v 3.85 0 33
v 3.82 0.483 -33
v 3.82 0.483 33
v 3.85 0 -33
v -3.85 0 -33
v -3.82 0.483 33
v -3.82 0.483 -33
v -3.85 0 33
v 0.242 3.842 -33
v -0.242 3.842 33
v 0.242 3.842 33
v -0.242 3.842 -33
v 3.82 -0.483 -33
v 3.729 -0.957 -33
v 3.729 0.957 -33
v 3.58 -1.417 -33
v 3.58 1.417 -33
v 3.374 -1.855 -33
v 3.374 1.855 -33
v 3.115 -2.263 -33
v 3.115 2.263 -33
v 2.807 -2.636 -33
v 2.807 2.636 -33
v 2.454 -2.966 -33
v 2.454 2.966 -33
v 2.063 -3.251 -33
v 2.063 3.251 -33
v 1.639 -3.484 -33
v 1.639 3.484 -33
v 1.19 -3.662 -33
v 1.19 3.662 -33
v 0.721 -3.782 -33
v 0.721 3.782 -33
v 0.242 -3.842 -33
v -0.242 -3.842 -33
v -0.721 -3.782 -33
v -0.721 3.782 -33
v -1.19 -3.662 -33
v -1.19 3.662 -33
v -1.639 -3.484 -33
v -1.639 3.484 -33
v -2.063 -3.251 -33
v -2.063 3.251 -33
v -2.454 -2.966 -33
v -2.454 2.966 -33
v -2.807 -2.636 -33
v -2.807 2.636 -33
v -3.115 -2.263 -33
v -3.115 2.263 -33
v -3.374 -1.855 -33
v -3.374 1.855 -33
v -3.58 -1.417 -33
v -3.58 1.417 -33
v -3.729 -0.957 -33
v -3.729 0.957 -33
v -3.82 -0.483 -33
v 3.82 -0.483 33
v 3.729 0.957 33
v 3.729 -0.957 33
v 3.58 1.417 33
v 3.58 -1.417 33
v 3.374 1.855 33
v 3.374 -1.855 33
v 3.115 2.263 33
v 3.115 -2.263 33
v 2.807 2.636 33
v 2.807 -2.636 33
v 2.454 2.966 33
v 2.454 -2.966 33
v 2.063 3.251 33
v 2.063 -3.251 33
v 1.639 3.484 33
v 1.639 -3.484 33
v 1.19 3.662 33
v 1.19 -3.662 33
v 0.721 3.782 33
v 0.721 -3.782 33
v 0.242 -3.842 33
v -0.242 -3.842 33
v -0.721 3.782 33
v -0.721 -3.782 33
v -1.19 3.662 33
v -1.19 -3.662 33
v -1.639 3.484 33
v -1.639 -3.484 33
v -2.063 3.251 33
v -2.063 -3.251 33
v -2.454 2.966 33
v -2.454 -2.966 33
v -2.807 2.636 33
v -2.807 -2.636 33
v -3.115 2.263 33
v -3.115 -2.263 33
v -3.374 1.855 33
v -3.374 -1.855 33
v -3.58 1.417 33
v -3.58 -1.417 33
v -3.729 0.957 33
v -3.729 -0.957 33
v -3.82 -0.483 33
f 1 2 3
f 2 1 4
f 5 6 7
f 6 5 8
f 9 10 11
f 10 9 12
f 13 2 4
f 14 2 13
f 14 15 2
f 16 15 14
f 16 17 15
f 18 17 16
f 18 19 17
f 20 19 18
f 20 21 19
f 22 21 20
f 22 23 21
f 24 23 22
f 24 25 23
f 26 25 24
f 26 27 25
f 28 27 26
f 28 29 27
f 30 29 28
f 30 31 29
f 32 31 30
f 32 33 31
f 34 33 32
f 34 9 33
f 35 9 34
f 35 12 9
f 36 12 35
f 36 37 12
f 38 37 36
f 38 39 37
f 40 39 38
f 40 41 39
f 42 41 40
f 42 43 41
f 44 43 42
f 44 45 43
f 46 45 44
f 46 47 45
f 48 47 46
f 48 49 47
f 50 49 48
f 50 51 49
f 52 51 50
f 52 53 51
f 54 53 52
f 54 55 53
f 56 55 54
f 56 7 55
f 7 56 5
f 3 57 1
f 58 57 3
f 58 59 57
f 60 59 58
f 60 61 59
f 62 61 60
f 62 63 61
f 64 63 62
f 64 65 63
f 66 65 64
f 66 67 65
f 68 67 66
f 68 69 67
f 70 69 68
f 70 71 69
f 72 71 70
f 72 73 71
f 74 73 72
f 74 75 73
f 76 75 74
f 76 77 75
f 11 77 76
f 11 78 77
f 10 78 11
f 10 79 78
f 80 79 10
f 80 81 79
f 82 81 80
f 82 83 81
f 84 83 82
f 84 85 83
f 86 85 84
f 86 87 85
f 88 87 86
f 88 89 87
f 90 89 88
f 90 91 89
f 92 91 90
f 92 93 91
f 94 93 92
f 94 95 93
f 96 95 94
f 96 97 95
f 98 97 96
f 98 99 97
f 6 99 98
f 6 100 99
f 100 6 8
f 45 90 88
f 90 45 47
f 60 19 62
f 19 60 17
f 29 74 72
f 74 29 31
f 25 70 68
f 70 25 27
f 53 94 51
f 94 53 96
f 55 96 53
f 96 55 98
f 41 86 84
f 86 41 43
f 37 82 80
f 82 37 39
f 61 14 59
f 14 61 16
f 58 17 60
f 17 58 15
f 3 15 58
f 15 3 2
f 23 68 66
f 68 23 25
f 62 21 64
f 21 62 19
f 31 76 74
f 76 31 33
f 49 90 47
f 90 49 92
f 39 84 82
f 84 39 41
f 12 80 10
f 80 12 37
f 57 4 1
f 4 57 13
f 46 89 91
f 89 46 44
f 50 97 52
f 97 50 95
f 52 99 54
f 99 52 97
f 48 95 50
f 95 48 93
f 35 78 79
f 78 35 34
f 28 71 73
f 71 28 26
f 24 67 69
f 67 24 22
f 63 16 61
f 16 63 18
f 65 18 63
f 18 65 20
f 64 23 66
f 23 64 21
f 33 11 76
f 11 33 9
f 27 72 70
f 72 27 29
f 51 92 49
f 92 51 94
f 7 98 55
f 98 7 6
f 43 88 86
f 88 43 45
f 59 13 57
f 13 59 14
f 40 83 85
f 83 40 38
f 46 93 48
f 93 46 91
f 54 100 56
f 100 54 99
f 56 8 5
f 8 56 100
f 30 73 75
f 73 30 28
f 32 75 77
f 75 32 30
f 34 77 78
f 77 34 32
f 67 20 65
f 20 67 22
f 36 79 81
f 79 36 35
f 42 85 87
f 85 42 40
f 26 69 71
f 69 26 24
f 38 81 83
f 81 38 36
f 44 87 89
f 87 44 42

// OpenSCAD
$fn = 50;


difference() {
	union() {
		translate(v = [0, 0, -33.0000000000]) {
			cylinder(h = 66, r = 3.8500000000);
		}
	}
	union() {
		translate(v = [0, 0, -100.0000000000]) {
			cylinder(h = 200, r = 0);
		}
	}
}
